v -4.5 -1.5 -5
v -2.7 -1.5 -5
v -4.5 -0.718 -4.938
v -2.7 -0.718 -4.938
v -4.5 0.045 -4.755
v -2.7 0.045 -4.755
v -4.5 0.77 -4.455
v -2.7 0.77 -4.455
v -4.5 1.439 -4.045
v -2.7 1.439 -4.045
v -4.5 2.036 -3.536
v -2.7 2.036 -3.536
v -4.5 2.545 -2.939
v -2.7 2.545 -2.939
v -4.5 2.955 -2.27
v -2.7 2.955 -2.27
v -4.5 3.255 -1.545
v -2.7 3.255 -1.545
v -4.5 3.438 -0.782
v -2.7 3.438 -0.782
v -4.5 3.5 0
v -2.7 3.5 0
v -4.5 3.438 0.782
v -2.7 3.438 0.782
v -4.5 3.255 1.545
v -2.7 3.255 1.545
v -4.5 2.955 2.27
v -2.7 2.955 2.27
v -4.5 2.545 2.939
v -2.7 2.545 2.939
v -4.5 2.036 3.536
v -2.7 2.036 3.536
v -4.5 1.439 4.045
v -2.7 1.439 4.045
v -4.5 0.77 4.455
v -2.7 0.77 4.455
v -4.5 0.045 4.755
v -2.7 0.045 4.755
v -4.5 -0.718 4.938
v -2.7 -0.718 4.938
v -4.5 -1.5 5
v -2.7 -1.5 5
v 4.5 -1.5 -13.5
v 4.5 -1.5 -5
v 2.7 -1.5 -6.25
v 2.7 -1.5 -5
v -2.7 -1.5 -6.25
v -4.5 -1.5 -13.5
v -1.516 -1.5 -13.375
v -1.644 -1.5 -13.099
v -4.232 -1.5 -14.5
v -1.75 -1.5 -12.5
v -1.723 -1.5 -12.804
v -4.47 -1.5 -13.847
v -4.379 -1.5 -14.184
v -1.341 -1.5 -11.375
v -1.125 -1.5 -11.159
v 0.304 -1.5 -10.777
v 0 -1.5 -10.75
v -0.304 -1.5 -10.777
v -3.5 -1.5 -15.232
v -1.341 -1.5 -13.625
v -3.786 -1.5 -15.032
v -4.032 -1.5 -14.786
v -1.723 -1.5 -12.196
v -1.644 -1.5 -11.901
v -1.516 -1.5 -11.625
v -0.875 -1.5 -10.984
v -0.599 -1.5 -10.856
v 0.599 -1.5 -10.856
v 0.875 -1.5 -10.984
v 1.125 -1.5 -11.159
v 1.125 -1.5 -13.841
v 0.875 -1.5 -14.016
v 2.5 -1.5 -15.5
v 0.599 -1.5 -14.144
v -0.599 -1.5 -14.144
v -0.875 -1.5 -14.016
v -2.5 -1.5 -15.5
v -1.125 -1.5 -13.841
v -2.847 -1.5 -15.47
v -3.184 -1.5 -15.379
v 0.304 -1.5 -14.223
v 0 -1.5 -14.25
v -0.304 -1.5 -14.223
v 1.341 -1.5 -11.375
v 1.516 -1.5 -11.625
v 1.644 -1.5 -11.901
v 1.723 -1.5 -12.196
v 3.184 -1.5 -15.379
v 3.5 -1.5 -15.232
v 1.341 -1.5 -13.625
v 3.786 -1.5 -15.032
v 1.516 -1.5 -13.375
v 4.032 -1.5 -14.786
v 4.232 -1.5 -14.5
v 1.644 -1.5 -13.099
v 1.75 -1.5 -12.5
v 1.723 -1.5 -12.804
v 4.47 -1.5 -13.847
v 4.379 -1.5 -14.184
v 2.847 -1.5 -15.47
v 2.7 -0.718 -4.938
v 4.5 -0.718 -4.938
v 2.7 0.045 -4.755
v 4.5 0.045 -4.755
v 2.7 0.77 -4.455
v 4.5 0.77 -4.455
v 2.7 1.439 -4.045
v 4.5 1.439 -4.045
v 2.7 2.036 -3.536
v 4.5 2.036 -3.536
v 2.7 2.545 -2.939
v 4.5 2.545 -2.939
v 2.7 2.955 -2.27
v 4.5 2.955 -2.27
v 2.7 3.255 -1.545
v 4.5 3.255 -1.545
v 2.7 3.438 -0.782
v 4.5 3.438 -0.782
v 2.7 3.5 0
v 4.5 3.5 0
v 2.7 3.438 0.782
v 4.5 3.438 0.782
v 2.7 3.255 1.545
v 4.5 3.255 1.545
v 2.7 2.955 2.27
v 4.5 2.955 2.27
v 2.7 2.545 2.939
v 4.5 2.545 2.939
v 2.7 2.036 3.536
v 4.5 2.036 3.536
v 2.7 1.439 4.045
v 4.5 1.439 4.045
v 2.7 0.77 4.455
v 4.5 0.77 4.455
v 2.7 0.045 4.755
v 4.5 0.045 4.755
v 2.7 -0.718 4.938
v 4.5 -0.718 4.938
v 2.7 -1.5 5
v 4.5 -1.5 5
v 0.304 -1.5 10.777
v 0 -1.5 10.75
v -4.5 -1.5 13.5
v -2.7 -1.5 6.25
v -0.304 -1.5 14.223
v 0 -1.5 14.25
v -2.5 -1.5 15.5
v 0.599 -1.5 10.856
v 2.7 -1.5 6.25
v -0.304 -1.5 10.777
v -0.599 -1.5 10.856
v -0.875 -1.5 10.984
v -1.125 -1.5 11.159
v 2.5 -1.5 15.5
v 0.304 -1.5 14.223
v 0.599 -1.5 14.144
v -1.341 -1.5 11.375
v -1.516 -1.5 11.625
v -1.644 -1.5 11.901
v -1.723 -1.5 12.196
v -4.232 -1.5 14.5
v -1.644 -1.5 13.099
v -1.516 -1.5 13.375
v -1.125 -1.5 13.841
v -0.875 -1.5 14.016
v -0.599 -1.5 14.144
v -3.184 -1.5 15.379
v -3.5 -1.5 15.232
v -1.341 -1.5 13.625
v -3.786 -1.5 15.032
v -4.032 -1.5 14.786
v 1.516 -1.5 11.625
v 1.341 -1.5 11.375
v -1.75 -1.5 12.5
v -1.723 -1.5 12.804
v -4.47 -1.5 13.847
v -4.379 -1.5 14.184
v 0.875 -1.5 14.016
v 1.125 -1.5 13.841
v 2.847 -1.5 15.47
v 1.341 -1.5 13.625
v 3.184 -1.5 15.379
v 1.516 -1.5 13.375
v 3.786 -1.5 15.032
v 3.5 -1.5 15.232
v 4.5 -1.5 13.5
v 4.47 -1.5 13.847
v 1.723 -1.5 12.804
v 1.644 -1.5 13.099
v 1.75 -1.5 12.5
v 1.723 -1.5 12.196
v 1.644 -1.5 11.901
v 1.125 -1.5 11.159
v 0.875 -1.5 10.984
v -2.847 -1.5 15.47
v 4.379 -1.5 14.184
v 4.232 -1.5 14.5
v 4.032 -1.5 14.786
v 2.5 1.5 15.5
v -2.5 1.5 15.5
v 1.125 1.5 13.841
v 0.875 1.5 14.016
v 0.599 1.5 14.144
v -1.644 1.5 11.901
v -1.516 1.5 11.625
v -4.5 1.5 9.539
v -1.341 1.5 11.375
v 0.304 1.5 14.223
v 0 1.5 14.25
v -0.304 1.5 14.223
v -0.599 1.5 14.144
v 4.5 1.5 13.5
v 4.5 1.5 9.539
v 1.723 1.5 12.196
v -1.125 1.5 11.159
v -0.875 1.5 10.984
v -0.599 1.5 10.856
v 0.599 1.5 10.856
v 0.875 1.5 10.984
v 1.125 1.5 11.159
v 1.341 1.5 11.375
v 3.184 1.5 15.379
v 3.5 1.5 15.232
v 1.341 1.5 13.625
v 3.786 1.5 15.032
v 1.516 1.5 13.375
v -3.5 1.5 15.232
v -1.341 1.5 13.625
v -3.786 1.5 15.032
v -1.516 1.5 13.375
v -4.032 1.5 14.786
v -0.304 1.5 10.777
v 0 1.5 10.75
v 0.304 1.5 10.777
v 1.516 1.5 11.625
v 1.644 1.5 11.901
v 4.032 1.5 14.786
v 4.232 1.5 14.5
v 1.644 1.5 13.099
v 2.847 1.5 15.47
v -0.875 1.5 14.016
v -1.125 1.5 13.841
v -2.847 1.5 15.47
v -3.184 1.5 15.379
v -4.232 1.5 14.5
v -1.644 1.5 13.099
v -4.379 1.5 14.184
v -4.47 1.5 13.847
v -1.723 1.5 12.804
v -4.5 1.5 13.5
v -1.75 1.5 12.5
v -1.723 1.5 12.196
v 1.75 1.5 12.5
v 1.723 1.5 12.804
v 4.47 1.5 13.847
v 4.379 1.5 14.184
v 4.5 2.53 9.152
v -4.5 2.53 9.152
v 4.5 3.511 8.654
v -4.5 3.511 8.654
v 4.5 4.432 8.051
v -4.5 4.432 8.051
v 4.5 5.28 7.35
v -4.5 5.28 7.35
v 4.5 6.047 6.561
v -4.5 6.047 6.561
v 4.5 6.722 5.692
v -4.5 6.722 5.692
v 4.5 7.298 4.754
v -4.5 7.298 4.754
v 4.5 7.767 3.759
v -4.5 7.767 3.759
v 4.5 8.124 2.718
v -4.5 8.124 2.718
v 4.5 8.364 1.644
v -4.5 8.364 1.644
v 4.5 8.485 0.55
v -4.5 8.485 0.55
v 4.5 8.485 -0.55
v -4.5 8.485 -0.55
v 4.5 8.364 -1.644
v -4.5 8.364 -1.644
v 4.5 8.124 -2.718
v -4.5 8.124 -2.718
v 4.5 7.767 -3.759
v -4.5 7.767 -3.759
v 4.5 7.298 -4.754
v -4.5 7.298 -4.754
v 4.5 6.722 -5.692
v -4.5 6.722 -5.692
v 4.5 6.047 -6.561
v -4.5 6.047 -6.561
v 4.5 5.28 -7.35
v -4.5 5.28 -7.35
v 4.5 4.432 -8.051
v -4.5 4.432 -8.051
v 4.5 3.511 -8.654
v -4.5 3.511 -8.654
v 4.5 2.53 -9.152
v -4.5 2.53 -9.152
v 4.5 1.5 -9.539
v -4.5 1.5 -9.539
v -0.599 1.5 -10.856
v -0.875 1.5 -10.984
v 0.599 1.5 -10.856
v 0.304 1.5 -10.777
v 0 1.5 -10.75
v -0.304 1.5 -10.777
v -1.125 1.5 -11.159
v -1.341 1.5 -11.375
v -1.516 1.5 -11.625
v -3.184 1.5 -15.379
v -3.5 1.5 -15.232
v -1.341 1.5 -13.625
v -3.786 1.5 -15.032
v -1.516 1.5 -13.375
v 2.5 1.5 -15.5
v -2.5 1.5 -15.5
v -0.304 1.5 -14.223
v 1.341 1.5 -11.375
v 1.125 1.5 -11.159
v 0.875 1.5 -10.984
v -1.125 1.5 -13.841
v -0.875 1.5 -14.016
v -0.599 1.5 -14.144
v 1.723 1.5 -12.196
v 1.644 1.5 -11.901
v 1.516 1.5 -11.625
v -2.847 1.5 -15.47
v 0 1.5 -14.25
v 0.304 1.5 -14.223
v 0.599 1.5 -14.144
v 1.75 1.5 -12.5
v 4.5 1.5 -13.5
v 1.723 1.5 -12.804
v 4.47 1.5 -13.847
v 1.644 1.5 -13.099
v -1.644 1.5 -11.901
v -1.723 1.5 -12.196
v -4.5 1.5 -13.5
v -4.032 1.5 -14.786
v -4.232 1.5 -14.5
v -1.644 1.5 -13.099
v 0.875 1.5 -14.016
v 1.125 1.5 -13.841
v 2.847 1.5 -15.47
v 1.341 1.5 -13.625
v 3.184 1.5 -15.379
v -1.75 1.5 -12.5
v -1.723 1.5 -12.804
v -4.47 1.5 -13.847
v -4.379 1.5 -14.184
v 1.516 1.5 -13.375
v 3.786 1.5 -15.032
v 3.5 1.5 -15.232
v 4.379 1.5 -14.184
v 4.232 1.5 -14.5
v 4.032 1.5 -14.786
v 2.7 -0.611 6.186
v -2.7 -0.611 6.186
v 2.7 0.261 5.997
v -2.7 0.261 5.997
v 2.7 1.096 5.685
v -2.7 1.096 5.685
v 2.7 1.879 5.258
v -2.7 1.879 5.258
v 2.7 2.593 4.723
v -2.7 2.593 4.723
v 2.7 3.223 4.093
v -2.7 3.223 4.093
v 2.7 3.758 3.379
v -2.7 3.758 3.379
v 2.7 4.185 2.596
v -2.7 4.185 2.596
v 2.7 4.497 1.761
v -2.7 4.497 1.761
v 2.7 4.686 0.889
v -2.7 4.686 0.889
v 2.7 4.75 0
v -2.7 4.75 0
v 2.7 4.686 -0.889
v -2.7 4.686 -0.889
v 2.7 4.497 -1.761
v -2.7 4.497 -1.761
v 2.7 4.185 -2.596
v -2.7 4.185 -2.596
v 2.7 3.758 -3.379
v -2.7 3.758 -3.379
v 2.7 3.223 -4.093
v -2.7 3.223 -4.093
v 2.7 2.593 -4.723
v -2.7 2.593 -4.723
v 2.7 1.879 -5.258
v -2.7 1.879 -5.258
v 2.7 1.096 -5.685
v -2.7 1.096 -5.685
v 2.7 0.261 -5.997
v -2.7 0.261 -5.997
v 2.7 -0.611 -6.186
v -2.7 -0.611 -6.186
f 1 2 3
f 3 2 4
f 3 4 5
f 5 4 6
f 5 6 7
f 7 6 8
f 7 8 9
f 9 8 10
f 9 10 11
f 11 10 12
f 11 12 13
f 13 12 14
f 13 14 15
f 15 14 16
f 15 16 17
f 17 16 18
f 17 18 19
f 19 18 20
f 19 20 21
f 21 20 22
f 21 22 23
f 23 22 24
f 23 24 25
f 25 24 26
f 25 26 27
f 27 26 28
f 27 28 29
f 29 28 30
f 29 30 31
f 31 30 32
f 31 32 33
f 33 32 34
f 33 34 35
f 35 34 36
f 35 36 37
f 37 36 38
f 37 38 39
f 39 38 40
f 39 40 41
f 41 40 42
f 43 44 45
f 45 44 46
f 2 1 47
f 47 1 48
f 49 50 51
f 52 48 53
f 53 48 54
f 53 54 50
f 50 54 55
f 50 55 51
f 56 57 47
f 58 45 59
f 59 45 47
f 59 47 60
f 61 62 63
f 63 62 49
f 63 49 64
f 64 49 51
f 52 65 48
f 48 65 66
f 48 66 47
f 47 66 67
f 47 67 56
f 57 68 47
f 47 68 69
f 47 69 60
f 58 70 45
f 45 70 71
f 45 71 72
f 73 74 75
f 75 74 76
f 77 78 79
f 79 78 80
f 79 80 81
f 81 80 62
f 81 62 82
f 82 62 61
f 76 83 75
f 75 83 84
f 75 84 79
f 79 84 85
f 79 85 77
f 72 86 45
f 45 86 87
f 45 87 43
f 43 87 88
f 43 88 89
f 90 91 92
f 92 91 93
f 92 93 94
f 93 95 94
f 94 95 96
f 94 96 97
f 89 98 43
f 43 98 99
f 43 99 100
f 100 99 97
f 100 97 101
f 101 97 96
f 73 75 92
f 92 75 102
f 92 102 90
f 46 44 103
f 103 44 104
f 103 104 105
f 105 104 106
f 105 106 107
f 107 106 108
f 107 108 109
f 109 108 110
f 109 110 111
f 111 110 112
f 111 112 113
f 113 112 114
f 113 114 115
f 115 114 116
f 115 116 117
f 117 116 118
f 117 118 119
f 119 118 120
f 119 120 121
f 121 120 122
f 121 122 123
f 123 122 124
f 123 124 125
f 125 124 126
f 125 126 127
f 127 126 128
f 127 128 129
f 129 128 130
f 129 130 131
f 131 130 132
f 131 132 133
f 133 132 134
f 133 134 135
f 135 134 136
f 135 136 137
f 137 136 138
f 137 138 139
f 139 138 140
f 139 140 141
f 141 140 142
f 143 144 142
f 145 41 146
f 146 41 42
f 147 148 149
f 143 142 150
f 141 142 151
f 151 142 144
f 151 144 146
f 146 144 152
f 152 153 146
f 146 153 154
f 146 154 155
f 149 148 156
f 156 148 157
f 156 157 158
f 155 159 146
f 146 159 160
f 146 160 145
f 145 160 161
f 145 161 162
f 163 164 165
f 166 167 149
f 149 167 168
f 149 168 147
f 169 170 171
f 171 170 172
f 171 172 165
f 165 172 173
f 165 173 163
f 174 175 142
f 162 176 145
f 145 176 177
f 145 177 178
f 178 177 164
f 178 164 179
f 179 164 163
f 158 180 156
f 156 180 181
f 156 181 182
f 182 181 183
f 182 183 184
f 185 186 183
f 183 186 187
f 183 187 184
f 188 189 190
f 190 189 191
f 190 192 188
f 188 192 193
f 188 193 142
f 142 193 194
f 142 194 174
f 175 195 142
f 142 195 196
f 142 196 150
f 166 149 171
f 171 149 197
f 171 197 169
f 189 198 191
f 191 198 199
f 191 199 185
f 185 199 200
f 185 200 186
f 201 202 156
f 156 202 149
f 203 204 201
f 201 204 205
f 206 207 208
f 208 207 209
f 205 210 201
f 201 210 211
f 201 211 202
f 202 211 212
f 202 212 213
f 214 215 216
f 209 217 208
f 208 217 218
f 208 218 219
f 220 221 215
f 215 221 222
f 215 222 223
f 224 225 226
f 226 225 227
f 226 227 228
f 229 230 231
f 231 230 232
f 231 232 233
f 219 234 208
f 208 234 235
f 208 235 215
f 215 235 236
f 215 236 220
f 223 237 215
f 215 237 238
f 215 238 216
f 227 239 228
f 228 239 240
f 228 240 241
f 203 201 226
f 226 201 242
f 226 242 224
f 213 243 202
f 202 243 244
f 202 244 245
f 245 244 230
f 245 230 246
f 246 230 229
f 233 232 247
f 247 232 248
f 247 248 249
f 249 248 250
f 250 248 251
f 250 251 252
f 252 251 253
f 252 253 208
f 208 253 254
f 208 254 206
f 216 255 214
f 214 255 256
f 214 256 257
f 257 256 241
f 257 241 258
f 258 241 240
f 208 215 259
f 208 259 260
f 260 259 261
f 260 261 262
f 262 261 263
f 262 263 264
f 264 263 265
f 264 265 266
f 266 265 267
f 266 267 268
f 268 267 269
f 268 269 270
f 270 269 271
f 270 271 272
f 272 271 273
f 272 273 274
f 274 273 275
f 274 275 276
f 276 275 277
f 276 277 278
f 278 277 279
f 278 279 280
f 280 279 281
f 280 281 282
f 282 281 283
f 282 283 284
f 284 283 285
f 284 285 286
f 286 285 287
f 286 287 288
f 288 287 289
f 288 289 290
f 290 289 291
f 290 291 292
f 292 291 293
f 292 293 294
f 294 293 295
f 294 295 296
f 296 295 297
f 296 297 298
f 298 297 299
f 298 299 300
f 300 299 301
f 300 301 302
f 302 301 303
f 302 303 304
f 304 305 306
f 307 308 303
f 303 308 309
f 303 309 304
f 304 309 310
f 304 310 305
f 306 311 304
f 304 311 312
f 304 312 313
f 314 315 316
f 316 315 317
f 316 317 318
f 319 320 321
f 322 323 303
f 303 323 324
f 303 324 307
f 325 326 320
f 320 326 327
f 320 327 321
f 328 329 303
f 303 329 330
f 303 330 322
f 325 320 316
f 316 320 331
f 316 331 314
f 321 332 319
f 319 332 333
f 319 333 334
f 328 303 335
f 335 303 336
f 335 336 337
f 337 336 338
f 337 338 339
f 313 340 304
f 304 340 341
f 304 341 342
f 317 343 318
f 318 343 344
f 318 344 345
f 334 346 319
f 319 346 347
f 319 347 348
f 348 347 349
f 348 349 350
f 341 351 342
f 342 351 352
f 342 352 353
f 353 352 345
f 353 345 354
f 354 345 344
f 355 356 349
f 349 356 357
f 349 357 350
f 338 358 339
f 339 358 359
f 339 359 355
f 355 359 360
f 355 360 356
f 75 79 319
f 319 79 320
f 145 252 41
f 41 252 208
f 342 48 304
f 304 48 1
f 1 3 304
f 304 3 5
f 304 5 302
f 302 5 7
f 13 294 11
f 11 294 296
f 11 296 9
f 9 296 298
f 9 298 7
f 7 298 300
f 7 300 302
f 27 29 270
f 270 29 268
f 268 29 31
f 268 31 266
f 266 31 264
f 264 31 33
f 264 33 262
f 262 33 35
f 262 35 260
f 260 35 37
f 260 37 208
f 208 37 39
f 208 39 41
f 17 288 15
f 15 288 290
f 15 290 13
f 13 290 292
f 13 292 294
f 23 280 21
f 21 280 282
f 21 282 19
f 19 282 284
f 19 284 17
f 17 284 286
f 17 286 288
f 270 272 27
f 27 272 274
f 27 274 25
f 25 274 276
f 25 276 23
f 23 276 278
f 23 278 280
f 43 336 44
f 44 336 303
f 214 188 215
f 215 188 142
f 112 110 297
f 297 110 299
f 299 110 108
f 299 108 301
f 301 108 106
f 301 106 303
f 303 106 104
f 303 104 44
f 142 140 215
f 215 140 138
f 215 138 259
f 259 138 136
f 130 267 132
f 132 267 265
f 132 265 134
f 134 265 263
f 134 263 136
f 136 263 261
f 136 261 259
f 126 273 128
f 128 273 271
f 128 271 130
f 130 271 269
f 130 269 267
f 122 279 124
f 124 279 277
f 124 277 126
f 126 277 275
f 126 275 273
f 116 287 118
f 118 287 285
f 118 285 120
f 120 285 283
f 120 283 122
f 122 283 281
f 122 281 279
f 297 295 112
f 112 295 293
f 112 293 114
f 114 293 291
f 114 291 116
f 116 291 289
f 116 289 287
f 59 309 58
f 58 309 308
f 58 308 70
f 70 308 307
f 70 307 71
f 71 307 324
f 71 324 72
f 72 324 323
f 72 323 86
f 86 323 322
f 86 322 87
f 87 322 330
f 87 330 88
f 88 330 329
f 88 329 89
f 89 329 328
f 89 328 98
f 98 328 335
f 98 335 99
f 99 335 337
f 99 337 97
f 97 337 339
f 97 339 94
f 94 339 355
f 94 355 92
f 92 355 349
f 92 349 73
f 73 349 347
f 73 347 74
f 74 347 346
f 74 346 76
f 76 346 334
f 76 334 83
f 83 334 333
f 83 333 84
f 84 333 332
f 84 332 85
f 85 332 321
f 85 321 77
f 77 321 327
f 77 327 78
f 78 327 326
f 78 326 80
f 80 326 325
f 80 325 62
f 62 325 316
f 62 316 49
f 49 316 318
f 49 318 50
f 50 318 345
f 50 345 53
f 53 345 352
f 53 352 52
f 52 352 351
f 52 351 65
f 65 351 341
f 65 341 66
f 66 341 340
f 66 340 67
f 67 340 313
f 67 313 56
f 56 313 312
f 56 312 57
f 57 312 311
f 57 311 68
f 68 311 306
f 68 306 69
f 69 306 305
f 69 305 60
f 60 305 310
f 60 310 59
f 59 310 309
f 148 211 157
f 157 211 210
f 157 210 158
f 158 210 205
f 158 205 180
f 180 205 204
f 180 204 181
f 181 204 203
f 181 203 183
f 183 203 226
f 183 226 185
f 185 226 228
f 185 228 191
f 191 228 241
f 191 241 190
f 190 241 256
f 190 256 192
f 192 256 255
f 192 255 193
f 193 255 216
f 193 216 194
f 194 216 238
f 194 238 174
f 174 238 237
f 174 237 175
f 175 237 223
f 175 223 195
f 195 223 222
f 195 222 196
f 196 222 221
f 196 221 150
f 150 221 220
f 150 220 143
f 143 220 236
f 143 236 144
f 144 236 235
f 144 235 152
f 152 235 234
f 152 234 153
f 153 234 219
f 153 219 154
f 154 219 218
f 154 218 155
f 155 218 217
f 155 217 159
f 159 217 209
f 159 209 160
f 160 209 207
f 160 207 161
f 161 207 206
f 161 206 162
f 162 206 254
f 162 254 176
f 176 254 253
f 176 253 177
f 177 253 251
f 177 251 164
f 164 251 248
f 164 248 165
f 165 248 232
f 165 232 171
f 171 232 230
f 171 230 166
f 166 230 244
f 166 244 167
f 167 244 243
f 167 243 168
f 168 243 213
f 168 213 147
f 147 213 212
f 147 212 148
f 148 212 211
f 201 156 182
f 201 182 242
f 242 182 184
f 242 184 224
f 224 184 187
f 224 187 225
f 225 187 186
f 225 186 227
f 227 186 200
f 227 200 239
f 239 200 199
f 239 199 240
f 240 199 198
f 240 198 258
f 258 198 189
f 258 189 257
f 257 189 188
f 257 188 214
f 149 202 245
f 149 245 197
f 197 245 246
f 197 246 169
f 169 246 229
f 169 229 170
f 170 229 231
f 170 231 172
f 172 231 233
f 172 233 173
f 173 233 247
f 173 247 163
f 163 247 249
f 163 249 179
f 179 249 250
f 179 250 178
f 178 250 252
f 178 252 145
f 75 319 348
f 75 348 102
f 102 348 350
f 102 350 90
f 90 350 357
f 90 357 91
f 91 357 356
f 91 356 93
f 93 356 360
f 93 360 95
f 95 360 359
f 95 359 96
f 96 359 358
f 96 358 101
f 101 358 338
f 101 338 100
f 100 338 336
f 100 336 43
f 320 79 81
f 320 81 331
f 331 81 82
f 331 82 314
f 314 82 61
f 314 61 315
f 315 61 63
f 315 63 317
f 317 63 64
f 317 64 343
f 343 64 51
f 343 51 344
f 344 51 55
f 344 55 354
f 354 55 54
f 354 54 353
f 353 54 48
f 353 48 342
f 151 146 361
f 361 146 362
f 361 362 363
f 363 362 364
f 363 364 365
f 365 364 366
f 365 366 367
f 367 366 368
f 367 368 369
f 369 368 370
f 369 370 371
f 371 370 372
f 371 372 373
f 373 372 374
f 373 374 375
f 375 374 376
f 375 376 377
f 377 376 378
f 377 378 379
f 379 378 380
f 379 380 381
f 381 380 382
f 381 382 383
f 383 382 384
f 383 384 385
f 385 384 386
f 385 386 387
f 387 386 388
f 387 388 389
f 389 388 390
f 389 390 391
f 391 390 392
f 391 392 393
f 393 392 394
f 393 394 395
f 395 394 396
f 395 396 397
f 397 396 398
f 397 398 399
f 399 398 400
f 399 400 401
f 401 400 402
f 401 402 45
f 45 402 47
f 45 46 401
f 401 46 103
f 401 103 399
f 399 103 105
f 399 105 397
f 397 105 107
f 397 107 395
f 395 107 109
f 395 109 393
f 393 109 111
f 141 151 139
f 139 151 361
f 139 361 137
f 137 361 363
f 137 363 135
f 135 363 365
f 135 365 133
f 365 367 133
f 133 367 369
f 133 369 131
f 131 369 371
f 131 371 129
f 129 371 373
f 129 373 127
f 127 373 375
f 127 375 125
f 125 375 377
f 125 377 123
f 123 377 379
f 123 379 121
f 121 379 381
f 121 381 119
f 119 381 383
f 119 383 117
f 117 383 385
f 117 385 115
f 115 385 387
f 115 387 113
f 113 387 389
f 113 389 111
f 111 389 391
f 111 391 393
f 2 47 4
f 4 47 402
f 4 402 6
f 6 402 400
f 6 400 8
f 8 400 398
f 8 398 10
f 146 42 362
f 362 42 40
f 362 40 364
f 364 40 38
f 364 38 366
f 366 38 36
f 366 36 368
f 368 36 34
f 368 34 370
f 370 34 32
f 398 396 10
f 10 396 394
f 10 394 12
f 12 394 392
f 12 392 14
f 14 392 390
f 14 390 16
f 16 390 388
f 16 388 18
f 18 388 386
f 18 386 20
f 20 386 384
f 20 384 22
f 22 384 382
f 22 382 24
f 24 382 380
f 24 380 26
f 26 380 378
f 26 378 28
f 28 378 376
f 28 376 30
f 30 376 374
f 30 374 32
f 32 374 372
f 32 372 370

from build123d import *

# Parameters (mm, degrees)
BOSS_EXTRUDE1_DEPTH      = 4.5
BOSS_EXTRUDE1_DEPTH_BACK = 4.5
SKETCH3_R                = 1.75
CUT_EXTRUDE1_DEPTH       = 18.592612086
FILLET1_R                = 2
CUT_EXTRUDE2_DEPTH       = 2.7
CUT_EXTRUDE2_DEPTH_BACK  = 2.7
SKETCH4_R                = 6.25


with BuildPart() as part:
    # Sketch2 → Boss-Extrude1 (new, two sides: drawn at the far end of the back side and taken through both)
    with BuildSketch(Plane(origin=(0, 0, 0), x_dir=(0, 0, -1), z_dir=(1, 0, 0)).offset(-BOSS_EXTRUDE1_DEPTH_BACK)):
        with BuildLine():
            Line((9.539392014, 1.5), (15.5, 1.5))
            Line((15.5, 1.5), (15.5, -1.5))
            Line((15.5, -1.5), (5, -1.5))
            ThreePointArc((5, -1.5), (0, 3.5), (-5, -1.5))
            Line((-5, -1.5), (-15.5, -1.5))
            Line((-15.5, -1.5), (-15.5, 1.5))
            Line((-15.5, 1.5), (-9.539392014, 1.5))
            ThreePointArc((-9.539392014, 1.5), (0, 8.5), (9.539392014, 1.5))
        make_face()
    extrude(amount=BOSS_EXTRUDE1_DEPTH + BOSS_EXTRUDE1_DEPTH_BACK)

    # Sketch3 → Cut-Extrude1 (cut, through all)
    with BuildSketch(Plane(origin=(0, 1.5, 0), x_dir=(1, 0, 0), z_dir=(0, 1, 0))):
        with Locations((0, 12.5)):
            Circle(SKETCH3_R)
        with Locations((0, -12.5)):
            Circle(SKETCH3_R)
    extrude(amount=-CUT_EXTRUDE1_DEPTH, mode=Mode.SUBTRACT)

    # Fillet1
    fillet1_edges = [part.edges().sort_by_distance(p)[0] for p in [
        (4.5, 0, 15.5),
        (-4.5, 0, 15.5),
        (4.5, 0, -15.5),
        (-4.5, 0, -15.5),
    ]]
    fillet(fillet1_edges, radius=FILLET1_R)

    # Sketch4 → Cut-Extrude2 (cut, two sides: drawn at the far end of the back side and taken through both)
    with BuildSketch(Plane(origin=(0, 0, 0), x_dir=(0, 0, -1), z_dir=(1, 0, 0)).offset(-CUT_EXTRUDE2_DEPTH_BACK)):
        with Locations((0, -1.5)):
            Circle(SKETCH4_R)
    extrude(amount=CUT_EXTRUDE2_DEPTH + CUT_EXTRUDE2_DEPTH_BACK, mode=Mode.SUBTRACT)


solid = part.part
